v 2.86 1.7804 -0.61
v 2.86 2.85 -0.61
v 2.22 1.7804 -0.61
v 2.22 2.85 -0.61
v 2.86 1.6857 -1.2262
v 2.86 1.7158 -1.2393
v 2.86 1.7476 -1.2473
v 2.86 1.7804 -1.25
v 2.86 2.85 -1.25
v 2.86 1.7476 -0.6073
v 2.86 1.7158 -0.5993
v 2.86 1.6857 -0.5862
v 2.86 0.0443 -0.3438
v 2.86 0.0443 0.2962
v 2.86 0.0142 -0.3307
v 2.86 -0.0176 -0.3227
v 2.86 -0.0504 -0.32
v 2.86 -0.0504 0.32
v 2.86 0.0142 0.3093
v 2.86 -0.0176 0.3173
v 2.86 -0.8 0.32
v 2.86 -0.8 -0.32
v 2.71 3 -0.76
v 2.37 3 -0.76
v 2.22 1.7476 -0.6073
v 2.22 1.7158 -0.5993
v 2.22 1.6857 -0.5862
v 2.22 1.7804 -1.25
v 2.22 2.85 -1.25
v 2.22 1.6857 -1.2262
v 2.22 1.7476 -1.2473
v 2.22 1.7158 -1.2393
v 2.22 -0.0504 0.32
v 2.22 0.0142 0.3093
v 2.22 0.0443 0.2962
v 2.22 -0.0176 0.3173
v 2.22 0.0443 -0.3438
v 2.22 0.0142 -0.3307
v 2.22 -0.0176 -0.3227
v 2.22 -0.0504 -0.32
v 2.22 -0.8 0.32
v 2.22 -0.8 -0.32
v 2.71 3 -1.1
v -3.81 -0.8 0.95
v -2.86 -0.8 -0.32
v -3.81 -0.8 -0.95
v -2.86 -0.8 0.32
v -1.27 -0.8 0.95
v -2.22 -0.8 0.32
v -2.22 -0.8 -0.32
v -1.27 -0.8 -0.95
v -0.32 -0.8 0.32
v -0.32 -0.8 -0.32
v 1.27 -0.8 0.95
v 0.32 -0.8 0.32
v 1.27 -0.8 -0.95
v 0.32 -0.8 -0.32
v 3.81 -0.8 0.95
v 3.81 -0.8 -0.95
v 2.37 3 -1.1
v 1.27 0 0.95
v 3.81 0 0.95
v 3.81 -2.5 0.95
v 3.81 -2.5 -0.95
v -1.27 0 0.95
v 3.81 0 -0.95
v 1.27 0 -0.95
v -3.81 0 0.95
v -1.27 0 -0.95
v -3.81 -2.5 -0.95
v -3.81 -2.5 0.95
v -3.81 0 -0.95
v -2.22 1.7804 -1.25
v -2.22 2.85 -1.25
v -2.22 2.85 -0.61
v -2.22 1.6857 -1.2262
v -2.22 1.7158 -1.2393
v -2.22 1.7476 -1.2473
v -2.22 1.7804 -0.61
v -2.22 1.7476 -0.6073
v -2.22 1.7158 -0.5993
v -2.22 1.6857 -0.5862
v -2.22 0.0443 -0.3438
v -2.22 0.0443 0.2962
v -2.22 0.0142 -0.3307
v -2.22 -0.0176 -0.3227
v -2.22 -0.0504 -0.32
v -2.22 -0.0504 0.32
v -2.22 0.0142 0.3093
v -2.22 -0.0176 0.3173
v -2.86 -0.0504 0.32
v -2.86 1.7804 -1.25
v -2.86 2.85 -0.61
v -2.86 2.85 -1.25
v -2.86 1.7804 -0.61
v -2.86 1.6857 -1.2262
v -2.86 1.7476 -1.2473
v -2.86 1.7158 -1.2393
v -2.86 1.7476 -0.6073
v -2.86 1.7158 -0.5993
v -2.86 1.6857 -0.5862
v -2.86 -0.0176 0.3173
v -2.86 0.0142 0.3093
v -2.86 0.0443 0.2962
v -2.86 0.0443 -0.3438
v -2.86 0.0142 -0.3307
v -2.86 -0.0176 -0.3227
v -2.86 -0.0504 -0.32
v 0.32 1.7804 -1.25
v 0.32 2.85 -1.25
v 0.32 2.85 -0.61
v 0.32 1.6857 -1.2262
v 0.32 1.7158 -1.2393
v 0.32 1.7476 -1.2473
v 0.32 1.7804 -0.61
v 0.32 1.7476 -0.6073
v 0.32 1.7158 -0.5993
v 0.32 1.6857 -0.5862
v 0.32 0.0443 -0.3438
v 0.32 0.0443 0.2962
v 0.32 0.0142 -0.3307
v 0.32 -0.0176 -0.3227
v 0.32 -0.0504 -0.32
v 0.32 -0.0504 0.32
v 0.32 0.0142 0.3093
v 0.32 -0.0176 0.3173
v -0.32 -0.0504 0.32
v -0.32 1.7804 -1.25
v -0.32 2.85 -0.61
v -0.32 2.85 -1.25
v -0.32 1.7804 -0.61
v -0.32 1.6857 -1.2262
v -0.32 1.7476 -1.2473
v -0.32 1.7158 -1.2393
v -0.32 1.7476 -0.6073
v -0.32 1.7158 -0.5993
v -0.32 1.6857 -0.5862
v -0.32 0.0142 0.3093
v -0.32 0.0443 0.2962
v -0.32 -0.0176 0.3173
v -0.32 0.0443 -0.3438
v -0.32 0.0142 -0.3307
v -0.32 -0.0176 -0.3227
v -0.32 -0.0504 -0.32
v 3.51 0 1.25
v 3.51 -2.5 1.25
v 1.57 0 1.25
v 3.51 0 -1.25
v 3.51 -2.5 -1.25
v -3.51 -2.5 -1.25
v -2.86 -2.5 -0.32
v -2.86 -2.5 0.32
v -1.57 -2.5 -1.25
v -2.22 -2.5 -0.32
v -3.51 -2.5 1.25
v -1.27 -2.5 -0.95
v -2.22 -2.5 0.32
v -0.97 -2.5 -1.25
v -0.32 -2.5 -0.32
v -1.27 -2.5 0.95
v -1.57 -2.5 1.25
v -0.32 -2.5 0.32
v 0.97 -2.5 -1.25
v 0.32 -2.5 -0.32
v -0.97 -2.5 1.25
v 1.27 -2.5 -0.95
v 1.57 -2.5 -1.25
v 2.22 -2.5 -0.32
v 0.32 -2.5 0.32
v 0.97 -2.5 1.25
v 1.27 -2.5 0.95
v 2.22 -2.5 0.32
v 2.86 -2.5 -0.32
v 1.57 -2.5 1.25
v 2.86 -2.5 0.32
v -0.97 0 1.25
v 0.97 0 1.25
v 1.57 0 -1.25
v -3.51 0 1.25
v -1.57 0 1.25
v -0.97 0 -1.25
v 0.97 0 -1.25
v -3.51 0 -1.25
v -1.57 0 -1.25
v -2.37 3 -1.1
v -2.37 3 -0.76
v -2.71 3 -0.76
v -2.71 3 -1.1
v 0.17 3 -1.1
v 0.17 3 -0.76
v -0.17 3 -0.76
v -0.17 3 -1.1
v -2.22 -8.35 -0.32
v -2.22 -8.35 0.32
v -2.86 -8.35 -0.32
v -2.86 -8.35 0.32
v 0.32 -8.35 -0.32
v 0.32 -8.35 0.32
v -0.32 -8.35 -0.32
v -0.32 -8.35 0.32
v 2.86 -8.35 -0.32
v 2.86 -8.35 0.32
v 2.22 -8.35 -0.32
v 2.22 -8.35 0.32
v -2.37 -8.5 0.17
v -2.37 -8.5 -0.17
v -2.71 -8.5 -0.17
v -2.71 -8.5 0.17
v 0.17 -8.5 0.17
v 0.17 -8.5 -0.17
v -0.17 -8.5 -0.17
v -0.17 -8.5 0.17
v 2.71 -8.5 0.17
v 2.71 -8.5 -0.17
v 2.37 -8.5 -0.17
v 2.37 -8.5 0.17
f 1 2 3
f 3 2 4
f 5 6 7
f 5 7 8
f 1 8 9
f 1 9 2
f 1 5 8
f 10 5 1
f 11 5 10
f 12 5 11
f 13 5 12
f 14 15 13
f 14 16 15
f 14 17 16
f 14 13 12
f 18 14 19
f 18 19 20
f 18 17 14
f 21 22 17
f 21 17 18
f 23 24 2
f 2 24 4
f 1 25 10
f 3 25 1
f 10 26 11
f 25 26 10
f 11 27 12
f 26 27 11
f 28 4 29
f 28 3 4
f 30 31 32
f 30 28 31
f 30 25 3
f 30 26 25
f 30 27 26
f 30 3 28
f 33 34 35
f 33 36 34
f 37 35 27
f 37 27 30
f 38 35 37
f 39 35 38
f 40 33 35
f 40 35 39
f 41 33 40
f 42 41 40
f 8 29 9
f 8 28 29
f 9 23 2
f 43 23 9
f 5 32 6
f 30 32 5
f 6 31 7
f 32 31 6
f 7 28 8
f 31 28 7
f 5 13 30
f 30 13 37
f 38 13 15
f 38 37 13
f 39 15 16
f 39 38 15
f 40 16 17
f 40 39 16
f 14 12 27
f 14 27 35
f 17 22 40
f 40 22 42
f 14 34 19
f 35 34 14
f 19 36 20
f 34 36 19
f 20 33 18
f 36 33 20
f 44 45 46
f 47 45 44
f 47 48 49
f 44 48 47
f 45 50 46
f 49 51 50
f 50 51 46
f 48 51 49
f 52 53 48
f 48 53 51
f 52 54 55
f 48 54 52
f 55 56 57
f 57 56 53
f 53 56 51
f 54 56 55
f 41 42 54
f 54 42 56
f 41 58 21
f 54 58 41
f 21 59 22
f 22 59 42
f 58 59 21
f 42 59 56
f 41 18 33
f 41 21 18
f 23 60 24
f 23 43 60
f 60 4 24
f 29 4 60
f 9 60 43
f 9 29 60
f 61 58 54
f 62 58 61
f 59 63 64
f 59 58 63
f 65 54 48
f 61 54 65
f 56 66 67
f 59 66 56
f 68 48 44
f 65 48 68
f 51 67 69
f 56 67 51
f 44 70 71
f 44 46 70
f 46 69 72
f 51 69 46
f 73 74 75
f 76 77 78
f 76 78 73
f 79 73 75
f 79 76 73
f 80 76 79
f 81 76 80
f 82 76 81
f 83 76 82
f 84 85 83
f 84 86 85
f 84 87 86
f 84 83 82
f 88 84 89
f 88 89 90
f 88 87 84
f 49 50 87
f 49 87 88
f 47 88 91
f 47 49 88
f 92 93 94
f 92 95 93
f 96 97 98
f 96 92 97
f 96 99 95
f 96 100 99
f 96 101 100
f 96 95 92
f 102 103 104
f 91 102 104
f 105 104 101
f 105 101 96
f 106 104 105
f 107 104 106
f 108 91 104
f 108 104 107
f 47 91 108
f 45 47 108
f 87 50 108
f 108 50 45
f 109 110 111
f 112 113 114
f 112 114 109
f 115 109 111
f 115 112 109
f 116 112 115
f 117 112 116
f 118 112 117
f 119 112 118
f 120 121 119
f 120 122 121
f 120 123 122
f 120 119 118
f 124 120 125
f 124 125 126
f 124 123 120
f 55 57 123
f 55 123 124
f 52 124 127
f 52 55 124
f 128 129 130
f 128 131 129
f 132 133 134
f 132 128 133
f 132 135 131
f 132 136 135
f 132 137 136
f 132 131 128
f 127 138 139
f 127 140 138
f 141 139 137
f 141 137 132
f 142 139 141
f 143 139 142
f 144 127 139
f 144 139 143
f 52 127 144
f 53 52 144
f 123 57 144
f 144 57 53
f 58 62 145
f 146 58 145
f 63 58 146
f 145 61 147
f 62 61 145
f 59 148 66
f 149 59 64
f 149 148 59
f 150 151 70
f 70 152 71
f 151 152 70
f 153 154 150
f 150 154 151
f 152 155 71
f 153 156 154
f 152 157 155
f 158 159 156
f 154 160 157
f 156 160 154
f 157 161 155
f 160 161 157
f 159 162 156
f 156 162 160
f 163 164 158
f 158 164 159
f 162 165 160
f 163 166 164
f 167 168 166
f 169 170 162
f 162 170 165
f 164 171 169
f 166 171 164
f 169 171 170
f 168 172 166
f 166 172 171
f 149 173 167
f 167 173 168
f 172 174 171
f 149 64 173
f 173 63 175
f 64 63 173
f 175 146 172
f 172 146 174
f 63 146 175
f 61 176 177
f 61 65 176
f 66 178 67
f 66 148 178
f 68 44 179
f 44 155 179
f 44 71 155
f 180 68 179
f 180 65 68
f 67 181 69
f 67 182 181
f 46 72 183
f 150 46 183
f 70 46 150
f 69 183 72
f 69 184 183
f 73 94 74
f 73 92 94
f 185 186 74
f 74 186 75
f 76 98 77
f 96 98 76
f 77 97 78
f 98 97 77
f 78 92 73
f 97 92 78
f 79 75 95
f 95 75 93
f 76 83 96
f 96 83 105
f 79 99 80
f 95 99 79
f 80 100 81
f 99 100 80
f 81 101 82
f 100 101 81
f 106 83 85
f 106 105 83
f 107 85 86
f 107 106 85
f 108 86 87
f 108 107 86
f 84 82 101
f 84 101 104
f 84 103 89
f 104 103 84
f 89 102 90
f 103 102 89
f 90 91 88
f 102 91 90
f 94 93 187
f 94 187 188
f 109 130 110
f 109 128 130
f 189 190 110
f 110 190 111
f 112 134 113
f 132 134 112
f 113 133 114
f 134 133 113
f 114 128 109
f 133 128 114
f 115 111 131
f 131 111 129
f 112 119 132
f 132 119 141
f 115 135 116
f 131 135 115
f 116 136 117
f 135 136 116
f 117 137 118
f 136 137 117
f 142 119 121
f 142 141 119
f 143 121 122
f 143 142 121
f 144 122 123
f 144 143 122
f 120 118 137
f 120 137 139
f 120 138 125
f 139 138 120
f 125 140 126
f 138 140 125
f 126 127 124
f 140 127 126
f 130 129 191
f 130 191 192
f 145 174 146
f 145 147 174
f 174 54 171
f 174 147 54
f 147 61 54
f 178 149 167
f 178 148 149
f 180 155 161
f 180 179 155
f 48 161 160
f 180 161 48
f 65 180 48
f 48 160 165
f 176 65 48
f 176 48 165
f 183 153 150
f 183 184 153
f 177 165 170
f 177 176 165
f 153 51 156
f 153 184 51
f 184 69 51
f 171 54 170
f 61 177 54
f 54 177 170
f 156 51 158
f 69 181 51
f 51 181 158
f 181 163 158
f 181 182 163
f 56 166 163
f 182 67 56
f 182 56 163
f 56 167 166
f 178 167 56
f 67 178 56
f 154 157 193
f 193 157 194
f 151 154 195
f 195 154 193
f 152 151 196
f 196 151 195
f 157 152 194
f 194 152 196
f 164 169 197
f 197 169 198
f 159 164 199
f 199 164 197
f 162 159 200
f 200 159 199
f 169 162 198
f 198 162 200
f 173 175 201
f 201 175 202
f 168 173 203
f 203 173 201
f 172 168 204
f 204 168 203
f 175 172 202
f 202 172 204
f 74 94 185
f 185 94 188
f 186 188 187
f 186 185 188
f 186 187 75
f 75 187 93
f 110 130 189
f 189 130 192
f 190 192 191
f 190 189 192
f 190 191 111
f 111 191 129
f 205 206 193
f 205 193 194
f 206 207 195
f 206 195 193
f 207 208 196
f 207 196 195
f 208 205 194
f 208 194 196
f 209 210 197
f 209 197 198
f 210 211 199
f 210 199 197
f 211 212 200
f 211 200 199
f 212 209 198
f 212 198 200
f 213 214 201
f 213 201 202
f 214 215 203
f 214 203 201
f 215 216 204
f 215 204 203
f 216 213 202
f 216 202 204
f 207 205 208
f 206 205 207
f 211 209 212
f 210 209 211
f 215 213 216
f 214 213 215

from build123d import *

# Parameters (mm, degrees)
SKETCH002_AS_DRAWN_W                      = 0.64
SKETCH002_AS_DRAWN_H                      = 0.64
EXTRUDE002_DEPTH                          = 6
EXTRUDE002_ONTO_SKETCH002_ROLL_ANGLE      = 90
CHAMFER001_SIZE                           = 0.15
SKETCH003_W                               = 0.8
SKETCH003_H                               = 1.9
EXTRUDE003_DEPTH                          = 7.62
EXTRUDE001_DEPTH                          = 2.5
EXTRUDE001_ONTO_SKETCH001_ROLL_ANGLE      = 90
SKETCH_AS_DRAWN_W                         = 7.62
SKETCH_AS_DRAWN_H                         = 2.5
EXTRUDE_DEPTH                             = 2.5
EXTRUDE_ONTO_SKETCH_ROLL_ANGLE            = 90
CHAMFER_SIZE                              = 0.3
SKETCH004_AS_DRAWN_W                      = 0.64
SKETCH004_AS_DRAWN_H                      = 1.57
EXTRUDE004_DEPTH                          = 3.8
EXTRUDE004_ONTO_SKETCH004_ROLL_ANGLE      = 90
EXTRUDE004_ONTO_SKETCH004_PLACEMENT_ANGLE = 180
EXTRUDE005_DEPTH                          = 5.72
FILLET_R                                  = 0.2
CHAMFER002_SIZE                           = 0.15


with BuildPart() as chamfer001:
    # Sketch002 as drawn → Extrude002 (new)
    with BuildSketch(Plane.XY):
        Rectangle(SKETCH002_AS_DRAWN_W, SKETCH002_AS_DRAWN_H)
        with Locations((-2.54, 0)):
            Rectangle(SKETCH002_AS_DRAWN_W, SKETCH002_AS_DRAWN_H)
        with Locations((2.54, 0)):
            Rectangle(SKETCH002_AS_DRAWN_W, SKETCH002_AS_DRAWN_H)
    extrude(amount=EXTRUDE002_DEPTH)


with BuildPart() as chamfer001_1:
    # Extrude002 onto Sketch002 roll: moved
    add(chamfer001.part.rotate(Axis((0, 0, 0), (1, 0, 0)), EXTRUDE002_ONTO_SKETCH002_ROLL_ANGLE))


with BuildPart() as chamfer001_2:
    # Extrude002 onto Sketch002 placement: moved
    add(chamfer001_1.part.moved(Location((0, -2.5, 0))))

    # Chamfer001
    chamfer001_edges = [chamfer001_2.edges().sort_by_distance(p)[0] for p in [
        (0, -8.5, 0.32),
        (-0.32, -8.5, 0),
        (0, -8.5, -0.32),
        (0.32, -8.5, 0),
        (2.54, -8.5, 0.32),
        (2.22, -8.5, 0),
        (2.54, -8.5, -0.32),
        (2.86, -8.5, 0),
        (-2.54, -8.5, 0.32),
        (-2.86, -8.5, 0),
        (-2.54, -8.5, -0.32),
        (-2.22, -8.5, 0),
    ]]
    chamfer(chamfer001_edges, length=CHAMFER001_SIZE)


with BuildPart() as extrude003:
    # Sketch003 (on Face6 of Cut) → Extrude003 (new body)
    with BuildSketch(Plane(origin=(-3.81, 0, 0), x_dir=(0, -1, 0), z_dir=(-1, 0, 0))):
        with Locations((0.4, 0)):
            Rectangle(SKETCH003_W, SKETCH003_H)
    extrude(amount=-EXTRUDE003_DEPTH)


with BuildPart() as extrude001:
    # Sketch001 as drawn → Extrude001 (new)
    with BuildSketch(Plane.XY):
        Polygon((-1.57, 1.25), (-1.27, 0.95), (-0.97, 1.25), align=None)
        Polygon((1.57, 1.25), (1.27, 0.95), (0.97, 1.25), align=None)
        Polygon((-1.57, -1.25), (-1.27, -0.95), (-0.97, -1.25), align=None)
        Polygon((1.57, -1.25), (1.27, -0.95), (0.97, -1.25), align=None)
    extrude(amount=-EXTRUDE001_DEPTH)


with BuildPart() as extrude001_1:
    # Extrude001 onto Sketch001 roll: moved
    add(extrude001.part.rotate(Axis((0, 0, 0), (1, 0, 0)), EXTRUDE001_ONTO_SKETCH001_ROLL_ANGLE))


with BuildPart() as extrude001_2:
    # Extrude001 onto Sketch001 placement: moved
    add(extrude001_1.part.moved(Location((0, -2.5, 0))))


with BuildPart() as cut001:
    # Sketch as drawn → Extrude (new)
    with BuildSketch(Plane.XY):
        Rectangle(SKETCH_AS_DRAWN_W, SKETCH_AS_DRAWN_H)
    extrude(amount=EXTRUDE_DEPTH)


with BuildPart() as cut001_1:
    # Extrude onto Sketch roll: moved
    add(cut001.part.rotate(Axis((0, 0, 0), (1, 0, 0)), EXTRUDE_ONTO_SKETCH_ROLL_ANGLE))


with BuildPart() as cut001_2:
    # Extrude onto Sketch placement: moved
    add(cut001_1.part)

    # Chamfer
    chamfer_edges = [cut001_2.edges().sort_by_distance(p)[0] for p in [
        (-3.81, -1.25, 1.25),
        (3.81, -1.25, 1.25),
        (3.81, -1.25, -1.25),
        (-3.81, -1.25, -1.25),
    ]]
    chamfer(chamfer_edges, length=CHAMFER_SIZE)

    # Cut: cut Extrude001
    add(extrude001_2.part, mode=Mode.SUBTRACT)

    # Cut001: cut Extrude003
    add(extrude003.part, mode=Mode.SUBTRACT)


with BuildPart() as extrude004:
    # Sketch004 as drawn → Extrude004 (new)
    with BuildSketch(Plane.XY):
        with Locations((0, -0.465)):
            Rectangle(SKETCH004_AS_DRAWN_W, SKETCH004_AS_DRAWN_H)
        with Locations((-2.54, -0.465)):
            Rectangle(SKETCH004_AS_DRAWN_W, SKETCH004_AS_DRAWN_H)
        with Locations((2.54, -0.465)):
            Rectangle(SKETCH004_AS_DRAWN_W, SKETCH004_AS_DRAWN_H)
    extrude(amount=EXTRUDE004_DEPTH)


with BuildPart() as extrude004_1:
    # Extrude004 onto Sketch004 roll: moved
    add(extrude004.part.rotate(Axis((0, 0, 0), (1, 0, 0)), EXTRUDE004_ONTO_SKETCH004_ROLL_ANGLE))


with BuildPart() as extrude004_2:
    # Extrude004 onto Sketch004 placement: moved
    add(extrude004_1.part.moved(Location((0, -0.8, 0))).rotate(Axis((0, -0.8, 0), (0, 0, 1)), EXTRUDE004_ONTO_SKETCH004_PLACEMENT_ANGLE))


with BuildPart() as fusion:
    # Sketch005 (on Face8 of Extrude004) → Extrude005 (new body)
    with BuildSketch(Plane(origin=(-2.86, 0, 0), x_dir=(0, -1, 0), z_dir=(-1, 0, 0))):
        Polygon((0.8, 0.32), (0, 0.32), (-1.73, -0.61), (-3, -0.61), (-3, -1.25), (-1.73, -1.25), (0, -0.32), (0.8, -0.32), align=None)
    extrude(amount=-EXTRUDE005_DEPTH)

    # Common: intersect Extrude004
    add(extrude004_2.part, mode=Mode.INTERSECT)

    # Fillet
    fillet_edges = [fusion.edges().sort_by_distance(p)[0] for p in [
        (2.54, 1.73, -0.61),
        (2.54, 0, 0.32),
        (2.54, 0, -0.32),
        (2.54, 1.73, -1.25),
        (0, 1.73, -0.61),
        (0, 0, 0.32),
        (0, 0, -0.32),
        (0, 1.73, -1.25),
        (-2.54, 1.73, -0.61),
        (-2.54, 0, 0.32),
        (-2.54, 0, -0.32),
        (-2.54, 1.73, -1.25),
    ]]
    fillet(fillet_edges, radius=FILLET_R)

    # Chamfer002
    chamfer002_edges = [fusion.edges().sort_by_distance(p)[0] for p in [
        (2.54, 3, -0.61),
        (2.86, 3, -0.93),
        (2.22, 3, -0.93),
        (2.54, 3, -1.25),
        (0, 3, -0.61),
        (0.32, 3, -0.93),
        (-0.32, 3, -0.93),
        (0, 3, -1.25),
        (-2.54, 3, -0.61),
        (-2.22, 3, -0.93),
        (-2.86, 3, -0.93),
        (-2.54, 3, -1.25),
    ]]
    chamfer(chamfer002_edges, length=CHAMFER002_SIZE)

    # Fusion: union Chamfer001, Cut001
    add(chamfer001_2.part)
    add(cut001_2.part)


solid = fusion.part
